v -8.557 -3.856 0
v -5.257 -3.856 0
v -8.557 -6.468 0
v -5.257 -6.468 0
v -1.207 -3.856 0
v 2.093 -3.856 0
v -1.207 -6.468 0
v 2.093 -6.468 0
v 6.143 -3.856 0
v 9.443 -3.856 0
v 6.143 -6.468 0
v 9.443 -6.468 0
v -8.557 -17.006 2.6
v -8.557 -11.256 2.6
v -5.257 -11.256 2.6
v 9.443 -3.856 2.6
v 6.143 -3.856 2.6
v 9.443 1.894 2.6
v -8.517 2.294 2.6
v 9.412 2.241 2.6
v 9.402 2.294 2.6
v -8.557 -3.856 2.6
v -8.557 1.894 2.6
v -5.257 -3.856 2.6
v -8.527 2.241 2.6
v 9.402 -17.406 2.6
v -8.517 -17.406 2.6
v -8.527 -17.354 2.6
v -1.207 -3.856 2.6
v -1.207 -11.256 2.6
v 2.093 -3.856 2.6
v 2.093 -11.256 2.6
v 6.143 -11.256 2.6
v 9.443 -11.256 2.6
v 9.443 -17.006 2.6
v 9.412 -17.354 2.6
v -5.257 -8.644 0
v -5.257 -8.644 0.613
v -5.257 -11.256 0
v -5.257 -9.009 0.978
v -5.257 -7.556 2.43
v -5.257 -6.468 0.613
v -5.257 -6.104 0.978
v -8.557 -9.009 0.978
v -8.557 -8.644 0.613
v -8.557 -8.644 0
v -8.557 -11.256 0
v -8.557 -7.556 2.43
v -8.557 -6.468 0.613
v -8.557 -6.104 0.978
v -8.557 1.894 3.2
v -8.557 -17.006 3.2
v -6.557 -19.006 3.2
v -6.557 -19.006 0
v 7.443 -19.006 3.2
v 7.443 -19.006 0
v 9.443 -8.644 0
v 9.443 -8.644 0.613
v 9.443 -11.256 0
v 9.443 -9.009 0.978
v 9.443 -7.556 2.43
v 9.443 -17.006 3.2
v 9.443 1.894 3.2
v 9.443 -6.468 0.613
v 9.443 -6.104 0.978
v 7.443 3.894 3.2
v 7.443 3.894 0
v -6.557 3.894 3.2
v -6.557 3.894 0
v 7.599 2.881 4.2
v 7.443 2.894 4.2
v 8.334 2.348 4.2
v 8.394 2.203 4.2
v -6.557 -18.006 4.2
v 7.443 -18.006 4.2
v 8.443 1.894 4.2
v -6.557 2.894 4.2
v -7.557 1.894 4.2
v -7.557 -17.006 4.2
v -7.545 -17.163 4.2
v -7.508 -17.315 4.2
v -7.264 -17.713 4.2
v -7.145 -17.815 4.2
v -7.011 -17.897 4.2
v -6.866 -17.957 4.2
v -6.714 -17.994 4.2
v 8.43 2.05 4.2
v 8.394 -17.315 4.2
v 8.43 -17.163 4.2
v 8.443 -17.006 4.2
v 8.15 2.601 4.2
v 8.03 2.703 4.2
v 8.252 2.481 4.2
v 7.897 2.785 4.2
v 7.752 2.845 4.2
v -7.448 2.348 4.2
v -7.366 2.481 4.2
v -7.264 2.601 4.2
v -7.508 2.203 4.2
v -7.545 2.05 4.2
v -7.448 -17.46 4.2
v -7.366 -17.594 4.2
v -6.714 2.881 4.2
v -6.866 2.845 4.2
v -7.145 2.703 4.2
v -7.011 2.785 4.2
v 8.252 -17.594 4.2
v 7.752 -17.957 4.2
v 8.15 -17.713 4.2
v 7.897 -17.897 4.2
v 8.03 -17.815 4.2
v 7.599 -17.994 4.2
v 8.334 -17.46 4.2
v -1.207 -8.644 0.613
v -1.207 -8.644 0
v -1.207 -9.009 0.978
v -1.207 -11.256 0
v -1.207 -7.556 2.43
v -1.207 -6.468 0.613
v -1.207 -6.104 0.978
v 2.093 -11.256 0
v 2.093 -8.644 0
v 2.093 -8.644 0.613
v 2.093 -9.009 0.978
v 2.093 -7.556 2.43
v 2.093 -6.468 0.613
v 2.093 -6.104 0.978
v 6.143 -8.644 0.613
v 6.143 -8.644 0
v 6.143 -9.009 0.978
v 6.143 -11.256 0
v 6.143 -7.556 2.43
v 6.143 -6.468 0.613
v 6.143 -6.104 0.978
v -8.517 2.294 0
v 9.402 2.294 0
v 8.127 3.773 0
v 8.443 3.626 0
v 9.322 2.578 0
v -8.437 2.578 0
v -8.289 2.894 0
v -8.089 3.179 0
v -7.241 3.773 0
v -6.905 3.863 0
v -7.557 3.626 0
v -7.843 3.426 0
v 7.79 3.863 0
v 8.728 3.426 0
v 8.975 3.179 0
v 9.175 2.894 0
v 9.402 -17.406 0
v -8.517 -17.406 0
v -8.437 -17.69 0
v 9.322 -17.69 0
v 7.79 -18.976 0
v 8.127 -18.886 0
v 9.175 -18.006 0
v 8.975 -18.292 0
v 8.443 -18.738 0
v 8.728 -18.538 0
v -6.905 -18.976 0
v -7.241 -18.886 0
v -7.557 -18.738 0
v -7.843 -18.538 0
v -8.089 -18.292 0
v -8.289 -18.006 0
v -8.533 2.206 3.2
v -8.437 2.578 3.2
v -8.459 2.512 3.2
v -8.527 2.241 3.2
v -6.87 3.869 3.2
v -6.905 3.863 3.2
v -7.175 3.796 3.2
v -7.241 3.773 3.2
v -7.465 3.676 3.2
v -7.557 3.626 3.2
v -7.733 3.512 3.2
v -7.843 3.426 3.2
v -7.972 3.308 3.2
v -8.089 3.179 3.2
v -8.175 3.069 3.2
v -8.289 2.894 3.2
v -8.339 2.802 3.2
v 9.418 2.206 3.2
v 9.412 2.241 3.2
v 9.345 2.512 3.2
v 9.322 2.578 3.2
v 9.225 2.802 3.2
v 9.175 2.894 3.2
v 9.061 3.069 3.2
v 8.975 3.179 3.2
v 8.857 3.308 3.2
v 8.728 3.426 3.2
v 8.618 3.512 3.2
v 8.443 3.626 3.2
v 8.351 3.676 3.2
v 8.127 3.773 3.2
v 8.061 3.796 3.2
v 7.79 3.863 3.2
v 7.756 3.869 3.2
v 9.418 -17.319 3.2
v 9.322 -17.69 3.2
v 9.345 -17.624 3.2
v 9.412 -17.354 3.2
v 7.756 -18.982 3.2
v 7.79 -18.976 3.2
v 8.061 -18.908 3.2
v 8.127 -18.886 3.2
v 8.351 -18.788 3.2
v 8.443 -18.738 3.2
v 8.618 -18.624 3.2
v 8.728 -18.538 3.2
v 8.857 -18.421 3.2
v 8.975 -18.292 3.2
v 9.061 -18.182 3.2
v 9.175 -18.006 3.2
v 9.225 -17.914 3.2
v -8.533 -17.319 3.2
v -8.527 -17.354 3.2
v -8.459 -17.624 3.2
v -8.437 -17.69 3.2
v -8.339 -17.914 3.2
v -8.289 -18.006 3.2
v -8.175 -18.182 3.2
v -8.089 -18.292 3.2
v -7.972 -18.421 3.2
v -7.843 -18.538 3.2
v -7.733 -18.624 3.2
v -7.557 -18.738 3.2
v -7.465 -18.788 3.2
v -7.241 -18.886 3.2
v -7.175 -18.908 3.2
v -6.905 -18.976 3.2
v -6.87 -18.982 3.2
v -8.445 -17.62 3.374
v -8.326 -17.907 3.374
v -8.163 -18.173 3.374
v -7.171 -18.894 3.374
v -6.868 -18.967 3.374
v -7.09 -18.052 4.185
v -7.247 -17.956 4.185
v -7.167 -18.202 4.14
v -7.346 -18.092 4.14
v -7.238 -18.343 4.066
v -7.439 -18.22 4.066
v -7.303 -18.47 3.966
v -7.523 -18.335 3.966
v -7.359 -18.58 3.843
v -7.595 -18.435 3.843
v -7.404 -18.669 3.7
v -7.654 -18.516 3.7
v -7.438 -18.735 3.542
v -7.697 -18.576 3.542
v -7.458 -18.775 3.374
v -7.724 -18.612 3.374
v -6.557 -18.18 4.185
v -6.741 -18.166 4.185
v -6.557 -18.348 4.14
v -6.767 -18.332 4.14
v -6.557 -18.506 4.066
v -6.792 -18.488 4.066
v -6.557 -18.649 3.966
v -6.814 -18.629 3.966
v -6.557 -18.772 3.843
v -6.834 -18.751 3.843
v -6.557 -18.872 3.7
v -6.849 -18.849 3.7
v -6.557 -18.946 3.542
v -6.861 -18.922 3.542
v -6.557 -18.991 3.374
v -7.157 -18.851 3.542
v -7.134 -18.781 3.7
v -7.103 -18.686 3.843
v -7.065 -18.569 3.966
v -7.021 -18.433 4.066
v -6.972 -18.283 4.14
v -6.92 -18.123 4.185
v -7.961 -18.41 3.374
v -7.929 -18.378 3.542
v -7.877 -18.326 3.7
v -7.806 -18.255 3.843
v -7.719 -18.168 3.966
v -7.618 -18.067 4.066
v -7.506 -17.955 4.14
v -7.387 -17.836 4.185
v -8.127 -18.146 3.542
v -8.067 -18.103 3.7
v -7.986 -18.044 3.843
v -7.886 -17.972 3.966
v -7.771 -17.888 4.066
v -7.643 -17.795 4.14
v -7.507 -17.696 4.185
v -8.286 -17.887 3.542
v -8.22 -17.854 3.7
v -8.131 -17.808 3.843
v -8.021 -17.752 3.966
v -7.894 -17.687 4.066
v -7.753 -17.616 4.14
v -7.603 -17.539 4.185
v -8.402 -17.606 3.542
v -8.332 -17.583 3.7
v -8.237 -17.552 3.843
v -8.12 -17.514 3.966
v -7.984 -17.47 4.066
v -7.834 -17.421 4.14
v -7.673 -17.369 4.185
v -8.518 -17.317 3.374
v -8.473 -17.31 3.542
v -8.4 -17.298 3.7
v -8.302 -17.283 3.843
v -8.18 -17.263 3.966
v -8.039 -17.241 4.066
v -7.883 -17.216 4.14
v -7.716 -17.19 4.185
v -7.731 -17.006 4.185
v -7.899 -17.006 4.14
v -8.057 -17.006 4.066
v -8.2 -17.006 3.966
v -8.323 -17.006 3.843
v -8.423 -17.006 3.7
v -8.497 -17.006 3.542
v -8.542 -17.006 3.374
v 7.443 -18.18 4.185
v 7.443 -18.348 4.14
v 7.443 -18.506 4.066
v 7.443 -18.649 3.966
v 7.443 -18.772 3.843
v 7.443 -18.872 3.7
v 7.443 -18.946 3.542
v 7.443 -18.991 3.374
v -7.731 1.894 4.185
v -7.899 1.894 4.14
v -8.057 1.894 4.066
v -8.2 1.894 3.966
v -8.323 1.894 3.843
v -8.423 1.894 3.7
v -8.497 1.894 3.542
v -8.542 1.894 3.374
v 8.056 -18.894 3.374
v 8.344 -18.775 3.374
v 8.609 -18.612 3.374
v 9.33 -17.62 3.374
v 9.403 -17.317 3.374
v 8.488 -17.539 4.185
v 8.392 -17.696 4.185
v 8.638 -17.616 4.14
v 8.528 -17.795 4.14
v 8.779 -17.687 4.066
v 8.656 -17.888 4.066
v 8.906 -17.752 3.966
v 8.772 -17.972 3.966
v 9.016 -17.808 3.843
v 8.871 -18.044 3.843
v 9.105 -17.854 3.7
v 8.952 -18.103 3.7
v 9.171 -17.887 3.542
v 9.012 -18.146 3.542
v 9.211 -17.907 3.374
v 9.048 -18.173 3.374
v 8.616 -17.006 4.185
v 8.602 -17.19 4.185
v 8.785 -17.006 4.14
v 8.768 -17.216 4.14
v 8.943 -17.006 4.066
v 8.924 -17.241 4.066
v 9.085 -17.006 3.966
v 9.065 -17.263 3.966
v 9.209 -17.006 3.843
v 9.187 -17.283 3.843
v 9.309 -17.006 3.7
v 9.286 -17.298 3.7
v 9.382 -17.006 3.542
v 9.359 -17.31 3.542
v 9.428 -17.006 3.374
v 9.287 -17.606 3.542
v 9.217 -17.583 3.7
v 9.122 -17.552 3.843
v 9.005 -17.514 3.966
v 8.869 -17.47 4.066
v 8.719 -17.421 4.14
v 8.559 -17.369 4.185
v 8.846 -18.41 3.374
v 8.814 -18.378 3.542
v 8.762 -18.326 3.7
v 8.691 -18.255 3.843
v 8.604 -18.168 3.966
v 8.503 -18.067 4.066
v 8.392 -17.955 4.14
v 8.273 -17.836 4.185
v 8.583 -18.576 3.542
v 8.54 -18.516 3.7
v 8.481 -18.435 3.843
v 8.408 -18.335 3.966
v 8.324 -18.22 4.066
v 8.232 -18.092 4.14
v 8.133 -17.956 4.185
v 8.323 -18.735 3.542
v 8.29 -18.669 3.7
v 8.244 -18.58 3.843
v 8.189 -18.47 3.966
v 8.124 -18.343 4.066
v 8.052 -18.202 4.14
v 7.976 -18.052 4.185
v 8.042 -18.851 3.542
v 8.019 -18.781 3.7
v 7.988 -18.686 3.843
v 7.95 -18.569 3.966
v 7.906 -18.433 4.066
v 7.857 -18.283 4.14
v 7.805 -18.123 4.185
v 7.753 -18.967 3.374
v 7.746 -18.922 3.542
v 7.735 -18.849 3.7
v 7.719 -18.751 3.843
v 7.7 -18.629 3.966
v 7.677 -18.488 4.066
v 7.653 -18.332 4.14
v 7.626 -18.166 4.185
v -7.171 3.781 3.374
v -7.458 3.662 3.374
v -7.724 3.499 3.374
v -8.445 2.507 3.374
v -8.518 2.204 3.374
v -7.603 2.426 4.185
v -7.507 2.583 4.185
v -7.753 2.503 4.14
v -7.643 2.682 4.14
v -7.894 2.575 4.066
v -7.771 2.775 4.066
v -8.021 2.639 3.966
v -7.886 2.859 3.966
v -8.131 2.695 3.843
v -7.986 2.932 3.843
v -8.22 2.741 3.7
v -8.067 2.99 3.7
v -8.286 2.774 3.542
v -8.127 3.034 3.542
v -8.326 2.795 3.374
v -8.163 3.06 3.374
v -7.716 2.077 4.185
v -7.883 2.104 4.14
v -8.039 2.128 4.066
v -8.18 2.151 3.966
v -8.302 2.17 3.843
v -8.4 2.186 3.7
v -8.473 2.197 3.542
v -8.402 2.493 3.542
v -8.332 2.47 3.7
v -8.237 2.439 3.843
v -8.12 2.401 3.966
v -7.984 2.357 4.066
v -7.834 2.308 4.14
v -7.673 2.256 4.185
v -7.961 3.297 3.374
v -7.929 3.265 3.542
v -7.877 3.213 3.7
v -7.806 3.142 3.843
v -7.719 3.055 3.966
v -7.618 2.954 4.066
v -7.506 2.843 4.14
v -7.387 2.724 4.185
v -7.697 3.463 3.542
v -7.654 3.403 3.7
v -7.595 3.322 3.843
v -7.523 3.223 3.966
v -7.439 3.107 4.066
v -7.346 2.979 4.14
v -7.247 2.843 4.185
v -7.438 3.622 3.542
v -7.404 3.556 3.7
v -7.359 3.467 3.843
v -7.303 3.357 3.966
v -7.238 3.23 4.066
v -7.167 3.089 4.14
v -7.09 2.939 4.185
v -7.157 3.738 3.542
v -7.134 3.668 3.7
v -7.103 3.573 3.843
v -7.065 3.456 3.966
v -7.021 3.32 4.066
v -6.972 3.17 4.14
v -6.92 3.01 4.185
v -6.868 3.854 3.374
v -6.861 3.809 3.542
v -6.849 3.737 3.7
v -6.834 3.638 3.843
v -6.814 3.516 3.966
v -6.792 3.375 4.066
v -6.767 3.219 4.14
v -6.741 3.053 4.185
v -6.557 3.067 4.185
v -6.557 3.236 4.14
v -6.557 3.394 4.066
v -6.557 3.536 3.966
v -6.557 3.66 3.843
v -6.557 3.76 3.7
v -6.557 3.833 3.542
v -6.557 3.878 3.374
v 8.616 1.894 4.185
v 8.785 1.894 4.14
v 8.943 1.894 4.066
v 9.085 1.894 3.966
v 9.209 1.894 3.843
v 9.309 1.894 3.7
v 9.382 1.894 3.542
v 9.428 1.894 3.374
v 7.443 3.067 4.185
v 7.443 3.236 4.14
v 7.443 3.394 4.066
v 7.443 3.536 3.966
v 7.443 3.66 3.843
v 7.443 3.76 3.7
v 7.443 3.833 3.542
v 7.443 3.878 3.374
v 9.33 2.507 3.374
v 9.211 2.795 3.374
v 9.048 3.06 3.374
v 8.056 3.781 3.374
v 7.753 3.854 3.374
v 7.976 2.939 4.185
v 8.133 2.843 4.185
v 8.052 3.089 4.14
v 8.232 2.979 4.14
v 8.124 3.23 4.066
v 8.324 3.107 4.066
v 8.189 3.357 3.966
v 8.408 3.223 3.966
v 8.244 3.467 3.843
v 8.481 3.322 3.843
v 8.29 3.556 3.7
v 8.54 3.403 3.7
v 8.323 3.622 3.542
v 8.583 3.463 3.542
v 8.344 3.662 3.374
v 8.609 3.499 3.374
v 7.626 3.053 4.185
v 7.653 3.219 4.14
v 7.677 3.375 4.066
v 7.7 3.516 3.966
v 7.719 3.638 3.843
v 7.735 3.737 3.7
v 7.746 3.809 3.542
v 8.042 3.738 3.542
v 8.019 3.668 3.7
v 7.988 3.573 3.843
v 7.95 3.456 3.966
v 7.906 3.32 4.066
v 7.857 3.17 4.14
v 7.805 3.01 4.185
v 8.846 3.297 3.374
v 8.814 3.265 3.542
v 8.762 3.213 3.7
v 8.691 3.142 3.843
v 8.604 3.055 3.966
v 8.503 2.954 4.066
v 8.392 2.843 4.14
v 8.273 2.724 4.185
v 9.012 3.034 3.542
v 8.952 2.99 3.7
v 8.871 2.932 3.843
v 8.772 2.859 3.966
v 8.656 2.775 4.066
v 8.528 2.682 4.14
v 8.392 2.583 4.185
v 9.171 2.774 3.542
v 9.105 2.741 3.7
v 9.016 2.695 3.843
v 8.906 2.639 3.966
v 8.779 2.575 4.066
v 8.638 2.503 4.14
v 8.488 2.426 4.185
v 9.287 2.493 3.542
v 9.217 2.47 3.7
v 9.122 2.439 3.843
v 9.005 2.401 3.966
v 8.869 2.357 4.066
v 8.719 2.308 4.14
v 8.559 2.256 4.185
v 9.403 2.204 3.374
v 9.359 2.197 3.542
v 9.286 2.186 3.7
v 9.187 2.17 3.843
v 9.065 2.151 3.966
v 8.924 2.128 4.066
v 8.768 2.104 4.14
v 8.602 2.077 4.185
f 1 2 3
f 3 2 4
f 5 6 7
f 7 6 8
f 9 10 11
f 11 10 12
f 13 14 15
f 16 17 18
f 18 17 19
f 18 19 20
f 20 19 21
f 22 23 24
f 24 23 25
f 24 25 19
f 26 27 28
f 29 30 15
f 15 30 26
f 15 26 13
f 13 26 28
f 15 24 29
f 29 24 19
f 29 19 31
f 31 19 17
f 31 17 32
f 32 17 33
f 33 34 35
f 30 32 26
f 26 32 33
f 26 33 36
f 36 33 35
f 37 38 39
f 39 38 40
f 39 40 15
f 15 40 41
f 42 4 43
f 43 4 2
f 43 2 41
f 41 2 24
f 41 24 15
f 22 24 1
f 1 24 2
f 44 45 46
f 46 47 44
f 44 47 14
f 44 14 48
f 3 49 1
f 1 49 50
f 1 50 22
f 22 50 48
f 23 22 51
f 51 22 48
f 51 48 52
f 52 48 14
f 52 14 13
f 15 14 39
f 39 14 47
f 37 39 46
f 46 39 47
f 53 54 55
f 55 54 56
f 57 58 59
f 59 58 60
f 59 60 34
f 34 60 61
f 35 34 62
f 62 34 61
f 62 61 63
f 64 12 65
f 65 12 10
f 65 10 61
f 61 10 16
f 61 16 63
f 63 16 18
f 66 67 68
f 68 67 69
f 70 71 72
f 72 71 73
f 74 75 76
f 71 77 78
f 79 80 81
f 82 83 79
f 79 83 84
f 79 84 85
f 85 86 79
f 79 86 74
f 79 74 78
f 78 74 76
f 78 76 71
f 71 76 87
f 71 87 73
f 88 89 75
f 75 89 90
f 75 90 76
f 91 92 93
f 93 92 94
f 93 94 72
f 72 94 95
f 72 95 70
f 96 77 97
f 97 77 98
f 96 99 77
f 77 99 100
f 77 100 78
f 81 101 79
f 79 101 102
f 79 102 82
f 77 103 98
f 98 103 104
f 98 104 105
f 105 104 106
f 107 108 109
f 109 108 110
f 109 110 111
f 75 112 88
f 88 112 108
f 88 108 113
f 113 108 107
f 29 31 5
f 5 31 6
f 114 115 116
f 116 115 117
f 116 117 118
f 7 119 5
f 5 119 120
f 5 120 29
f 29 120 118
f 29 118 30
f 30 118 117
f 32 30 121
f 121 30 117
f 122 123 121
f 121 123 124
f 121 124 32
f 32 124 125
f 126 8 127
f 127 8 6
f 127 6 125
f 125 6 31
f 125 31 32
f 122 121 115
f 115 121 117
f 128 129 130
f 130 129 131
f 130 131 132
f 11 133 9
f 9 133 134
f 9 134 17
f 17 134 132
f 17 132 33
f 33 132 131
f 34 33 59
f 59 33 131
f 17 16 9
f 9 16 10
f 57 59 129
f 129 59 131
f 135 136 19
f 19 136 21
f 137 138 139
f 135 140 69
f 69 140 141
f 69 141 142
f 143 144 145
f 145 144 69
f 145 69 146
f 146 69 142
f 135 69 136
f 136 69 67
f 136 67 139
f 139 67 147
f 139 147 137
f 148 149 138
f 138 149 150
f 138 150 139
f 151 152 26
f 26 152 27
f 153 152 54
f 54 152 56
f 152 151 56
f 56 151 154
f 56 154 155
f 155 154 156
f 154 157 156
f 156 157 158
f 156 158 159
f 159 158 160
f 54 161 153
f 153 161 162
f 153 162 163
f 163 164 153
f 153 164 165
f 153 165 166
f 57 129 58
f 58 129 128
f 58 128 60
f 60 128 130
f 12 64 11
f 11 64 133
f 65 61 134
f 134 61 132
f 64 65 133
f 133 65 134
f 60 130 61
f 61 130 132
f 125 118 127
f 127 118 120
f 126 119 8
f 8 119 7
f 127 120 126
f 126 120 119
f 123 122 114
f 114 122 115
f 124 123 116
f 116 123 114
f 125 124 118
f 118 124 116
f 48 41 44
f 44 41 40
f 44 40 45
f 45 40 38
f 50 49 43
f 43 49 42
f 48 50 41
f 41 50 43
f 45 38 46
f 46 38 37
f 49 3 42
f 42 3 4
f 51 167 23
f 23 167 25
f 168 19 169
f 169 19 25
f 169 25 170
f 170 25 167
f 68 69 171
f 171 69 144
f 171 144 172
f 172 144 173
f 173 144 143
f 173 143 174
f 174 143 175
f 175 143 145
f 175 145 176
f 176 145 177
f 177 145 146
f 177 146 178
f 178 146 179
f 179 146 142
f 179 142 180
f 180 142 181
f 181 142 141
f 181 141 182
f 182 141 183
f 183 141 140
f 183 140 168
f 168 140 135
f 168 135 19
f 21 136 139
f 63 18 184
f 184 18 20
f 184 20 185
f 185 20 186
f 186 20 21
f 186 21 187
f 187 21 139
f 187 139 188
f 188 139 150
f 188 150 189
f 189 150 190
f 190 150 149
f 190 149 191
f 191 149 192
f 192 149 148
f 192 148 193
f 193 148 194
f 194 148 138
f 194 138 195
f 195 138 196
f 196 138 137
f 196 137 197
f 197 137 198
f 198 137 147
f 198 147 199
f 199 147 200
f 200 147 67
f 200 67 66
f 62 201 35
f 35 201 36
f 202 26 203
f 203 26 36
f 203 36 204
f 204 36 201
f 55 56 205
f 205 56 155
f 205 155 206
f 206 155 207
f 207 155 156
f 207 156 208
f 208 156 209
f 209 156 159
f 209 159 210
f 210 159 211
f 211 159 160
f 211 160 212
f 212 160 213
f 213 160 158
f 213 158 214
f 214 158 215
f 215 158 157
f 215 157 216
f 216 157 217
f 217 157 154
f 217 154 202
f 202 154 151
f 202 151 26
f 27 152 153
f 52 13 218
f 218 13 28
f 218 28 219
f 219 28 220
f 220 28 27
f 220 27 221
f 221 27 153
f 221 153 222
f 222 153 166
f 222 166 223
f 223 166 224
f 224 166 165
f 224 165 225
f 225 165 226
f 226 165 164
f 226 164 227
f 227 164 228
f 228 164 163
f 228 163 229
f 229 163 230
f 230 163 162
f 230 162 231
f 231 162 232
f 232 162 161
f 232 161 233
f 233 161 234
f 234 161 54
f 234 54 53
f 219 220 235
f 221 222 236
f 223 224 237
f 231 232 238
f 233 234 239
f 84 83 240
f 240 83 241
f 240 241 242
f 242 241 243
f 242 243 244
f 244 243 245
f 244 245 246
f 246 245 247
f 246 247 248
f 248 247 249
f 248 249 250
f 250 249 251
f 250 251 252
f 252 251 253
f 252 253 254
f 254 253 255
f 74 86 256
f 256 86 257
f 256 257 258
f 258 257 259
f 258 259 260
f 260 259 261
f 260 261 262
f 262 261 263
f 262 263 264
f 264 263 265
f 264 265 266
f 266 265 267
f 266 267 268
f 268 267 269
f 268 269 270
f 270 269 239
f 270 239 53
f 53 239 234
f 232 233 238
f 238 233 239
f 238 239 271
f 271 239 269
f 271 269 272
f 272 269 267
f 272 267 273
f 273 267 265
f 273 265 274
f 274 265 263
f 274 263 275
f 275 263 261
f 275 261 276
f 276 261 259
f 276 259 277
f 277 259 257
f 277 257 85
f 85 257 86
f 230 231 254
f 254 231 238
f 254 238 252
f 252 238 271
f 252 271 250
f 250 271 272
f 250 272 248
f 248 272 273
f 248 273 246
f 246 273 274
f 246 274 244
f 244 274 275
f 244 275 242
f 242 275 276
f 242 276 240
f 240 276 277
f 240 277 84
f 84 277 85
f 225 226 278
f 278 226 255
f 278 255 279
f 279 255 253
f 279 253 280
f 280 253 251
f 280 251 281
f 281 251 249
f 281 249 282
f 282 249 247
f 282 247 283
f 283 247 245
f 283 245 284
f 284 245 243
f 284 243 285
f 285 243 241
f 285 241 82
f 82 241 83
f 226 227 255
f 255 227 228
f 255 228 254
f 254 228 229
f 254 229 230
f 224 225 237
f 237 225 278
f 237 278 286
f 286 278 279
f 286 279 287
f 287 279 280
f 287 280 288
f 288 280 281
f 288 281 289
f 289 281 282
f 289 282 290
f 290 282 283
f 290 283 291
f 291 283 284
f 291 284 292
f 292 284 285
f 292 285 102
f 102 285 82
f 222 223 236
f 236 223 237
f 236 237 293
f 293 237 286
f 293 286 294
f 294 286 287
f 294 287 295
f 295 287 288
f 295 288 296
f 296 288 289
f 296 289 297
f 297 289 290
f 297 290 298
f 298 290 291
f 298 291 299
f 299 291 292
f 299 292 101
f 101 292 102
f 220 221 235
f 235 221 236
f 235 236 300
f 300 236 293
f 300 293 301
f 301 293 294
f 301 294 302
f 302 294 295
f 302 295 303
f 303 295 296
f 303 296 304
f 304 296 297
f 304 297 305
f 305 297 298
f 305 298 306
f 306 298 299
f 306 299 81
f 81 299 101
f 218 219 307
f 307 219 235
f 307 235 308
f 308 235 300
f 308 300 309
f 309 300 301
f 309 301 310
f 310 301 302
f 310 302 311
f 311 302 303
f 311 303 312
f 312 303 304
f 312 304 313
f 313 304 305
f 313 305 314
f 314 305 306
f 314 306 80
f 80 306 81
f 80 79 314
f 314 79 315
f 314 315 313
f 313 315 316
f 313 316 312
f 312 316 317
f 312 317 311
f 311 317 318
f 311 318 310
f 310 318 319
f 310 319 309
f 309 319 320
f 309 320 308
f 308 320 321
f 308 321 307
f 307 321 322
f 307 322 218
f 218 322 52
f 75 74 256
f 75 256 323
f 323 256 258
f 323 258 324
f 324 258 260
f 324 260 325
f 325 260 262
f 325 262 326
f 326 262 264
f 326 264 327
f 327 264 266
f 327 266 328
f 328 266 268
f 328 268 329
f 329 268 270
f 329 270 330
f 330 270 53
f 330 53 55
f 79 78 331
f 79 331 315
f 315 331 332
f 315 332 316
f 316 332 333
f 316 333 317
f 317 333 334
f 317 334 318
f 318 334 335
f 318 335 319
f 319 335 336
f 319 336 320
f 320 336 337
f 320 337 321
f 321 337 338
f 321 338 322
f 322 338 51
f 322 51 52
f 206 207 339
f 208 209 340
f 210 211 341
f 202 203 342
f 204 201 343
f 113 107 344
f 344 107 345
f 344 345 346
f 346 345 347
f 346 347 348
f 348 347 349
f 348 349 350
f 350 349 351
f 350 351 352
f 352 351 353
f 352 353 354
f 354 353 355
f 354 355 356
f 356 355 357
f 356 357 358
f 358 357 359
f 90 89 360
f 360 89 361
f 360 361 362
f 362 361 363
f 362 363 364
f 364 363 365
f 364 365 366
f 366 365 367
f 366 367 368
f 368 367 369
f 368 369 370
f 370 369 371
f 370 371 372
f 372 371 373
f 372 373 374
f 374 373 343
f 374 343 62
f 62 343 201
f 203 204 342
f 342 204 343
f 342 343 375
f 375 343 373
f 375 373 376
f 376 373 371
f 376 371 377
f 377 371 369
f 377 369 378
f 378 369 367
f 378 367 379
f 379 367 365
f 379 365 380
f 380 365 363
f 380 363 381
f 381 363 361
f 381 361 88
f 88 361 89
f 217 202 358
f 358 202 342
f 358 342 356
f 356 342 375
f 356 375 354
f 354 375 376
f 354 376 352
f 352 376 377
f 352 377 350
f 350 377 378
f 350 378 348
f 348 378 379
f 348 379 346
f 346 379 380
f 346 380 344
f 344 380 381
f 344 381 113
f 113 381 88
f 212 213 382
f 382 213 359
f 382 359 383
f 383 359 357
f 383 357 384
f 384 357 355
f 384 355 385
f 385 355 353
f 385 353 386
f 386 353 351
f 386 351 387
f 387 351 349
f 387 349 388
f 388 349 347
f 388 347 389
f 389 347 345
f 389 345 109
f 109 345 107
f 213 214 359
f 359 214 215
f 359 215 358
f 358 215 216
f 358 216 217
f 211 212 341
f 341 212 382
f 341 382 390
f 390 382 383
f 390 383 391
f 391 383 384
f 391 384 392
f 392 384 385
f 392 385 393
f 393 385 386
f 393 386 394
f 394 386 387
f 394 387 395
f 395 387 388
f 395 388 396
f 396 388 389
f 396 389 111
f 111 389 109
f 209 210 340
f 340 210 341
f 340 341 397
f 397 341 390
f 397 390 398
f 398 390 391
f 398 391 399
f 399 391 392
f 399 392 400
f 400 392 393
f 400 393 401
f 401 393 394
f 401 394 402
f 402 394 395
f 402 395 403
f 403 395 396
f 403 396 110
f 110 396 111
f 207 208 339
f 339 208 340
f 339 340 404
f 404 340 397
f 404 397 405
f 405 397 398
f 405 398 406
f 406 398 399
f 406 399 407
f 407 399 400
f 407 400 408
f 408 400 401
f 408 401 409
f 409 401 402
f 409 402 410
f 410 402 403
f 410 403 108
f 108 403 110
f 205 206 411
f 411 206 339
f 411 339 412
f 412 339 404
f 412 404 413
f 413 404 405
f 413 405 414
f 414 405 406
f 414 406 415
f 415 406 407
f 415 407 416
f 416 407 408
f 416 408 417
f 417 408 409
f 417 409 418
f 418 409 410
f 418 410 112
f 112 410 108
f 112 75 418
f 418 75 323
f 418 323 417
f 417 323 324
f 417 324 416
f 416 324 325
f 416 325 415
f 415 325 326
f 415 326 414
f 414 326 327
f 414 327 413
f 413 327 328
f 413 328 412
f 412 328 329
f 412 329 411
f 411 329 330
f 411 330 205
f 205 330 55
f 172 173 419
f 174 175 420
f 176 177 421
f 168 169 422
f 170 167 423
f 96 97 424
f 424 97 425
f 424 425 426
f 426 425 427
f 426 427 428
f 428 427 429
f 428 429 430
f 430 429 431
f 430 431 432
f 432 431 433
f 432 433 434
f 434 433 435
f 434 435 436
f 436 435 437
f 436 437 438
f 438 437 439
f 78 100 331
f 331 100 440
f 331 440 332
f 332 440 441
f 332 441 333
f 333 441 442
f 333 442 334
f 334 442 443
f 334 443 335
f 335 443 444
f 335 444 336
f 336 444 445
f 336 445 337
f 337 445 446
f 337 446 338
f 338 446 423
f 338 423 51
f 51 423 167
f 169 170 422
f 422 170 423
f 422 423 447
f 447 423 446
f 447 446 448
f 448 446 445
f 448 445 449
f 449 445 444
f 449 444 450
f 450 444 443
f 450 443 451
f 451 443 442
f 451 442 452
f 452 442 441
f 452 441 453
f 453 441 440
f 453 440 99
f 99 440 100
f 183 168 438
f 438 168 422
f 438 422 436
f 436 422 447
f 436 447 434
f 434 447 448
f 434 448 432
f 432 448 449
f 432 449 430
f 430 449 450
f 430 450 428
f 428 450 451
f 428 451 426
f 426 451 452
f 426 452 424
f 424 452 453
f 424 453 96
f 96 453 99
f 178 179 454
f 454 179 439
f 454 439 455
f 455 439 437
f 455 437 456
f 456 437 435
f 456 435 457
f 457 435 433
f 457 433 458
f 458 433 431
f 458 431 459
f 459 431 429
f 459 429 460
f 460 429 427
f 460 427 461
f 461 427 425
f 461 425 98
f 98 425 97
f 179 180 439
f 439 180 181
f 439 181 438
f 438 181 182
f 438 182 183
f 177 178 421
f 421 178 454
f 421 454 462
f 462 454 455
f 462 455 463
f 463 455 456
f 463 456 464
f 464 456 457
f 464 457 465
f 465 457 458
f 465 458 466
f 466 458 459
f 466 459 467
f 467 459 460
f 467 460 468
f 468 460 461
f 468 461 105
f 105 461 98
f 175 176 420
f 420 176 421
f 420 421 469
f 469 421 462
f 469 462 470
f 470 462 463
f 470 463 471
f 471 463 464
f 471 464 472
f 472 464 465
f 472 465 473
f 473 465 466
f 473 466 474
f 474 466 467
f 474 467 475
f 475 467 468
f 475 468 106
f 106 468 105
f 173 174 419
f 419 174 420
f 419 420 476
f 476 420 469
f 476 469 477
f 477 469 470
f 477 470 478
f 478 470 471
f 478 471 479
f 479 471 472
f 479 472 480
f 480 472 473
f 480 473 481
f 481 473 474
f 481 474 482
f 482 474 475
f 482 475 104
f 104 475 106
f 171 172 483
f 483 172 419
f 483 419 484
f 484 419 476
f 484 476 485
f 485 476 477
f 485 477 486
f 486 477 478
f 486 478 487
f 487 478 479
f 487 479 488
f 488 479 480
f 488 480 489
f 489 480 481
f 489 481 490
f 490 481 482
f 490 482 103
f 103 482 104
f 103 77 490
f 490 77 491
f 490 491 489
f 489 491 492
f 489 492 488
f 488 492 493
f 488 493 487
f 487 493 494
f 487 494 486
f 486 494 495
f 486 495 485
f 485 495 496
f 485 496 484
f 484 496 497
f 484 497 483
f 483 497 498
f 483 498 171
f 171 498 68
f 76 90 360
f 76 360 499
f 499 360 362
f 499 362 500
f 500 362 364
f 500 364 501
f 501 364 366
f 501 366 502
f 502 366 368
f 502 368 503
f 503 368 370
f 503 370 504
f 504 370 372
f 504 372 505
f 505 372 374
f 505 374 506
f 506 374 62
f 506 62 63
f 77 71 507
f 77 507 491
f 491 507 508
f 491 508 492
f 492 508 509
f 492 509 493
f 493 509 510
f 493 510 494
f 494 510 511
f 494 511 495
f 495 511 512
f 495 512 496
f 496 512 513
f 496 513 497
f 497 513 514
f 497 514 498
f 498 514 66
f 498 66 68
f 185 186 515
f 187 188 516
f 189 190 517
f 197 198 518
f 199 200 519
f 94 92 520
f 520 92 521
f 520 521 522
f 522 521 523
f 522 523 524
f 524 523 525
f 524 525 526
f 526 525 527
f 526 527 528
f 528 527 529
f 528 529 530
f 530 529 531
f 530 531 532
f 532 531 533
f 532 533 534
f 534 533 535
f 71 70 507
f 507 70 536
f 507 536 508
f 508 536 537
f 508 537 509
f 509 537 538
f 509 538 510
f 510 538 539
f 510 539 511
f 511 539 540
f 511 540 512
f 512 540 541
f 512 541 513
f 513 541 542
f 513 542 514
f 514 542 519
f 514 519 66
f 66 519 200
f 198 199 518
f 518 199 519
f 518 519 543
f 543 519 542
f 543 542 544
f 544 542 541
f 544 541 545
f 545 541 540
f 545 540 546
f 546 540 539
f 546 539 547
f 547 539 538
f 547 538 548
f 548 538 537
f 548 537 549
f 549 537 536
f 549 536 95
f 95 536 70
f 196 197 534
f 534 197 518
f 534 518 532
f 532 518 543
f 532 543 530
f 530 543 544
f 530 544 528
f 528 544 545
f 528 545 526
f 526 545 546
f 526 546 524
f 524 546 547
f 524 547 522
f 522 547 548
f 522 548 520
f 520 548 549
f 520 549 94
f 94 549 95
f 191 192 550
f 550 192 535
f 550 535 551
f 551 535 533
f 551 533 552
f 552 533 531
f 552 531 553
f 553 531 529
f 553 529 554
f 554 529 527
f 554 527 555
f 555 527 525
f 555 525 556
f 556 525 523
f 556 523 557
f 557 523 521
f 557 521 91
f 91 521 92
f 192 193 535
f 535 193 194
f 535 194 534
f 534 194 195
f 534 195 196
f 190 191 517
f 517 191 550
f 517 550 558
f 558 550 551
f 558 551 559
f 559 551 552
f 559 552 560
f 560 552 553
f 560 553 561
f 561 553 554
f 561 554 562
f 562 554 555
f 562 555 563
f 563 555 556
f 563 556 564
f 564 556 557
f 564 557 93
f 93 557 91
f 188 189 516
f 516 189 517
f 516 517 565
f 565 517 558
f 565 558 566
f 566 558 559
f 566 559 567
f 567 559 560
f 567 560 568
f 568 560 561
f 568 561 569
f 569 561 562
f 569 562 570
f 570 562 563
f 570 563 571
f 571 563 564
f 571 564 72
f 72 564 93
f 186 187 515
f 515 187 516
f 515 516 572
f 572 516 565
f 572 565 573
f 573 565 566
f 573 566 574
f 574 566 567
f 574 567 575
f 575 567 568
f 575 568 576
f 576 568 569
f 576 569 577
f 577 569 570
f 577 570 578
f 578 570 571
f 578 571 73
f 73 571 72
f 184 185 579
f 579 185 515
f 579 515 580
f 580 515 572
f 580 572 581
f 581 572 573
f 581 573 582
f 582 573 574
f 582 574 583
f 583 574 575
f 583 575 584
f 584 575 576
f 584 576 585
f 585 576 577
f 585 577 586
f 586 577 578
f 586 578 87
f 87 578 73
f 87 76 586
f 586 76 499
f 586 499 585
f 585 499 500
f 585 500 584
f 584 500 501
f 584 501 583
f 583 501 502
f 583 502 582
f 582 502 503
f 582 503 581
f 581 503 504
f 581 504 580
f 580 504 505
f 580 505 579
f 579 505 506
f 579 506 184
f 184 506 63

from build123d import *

# Parameters (mm, degrees)
SKETCH1_W               = 3.3
SKETCH1_H               = 7.4
BOSS_EXTRUDE1_DEPTH     = 2.6
BOSS_EXTRUDE1_2_DEPTH   = 2.6
BOSS_EXTRUDE1_3_DEPTH   = 2.6
SKETCH1_W_2             = 18
SKETCH1_H_2             = 1.6
BOSS_EXTRUDE1_4_DEPTH   = 2.6
BOSS_EXTRUDE1_5_DEPTH   = 2.6
SKETCH3_W               = 18
SKETCH3_H               = 22.9
BOSS_EXTRUDE2_DEPTH     = 1.6
CUT_EXTRUDE1_DEPTH      = 27.511924597
CUT_EXTRUDE1_DEPTH_BACK = 27.511924597
FILLET1_R               = 2
FILLET2_R               = 1


with BuildPart() as part:
    # Sketch1 → Boss-Extrude1 (new body)
    with BuildSketch(Plane.XY):
        with Locations((-6.907290918, -7.556371191)):
            Rectangle(SKETCH1_W, SKETCH1_H)
    extrude(amount=BOSS_EXTRUDE1_DEPTH)



with BuildPart() as body_2:
    # Sketch1 → Boss-Extrude1 2 (new body)
    with BuildSketch(Plane.XY):
        with Locations((0.442709082, -7.556371191)):
            Rectangle(SKETCH1_W, SKETCH1_H)
    extrude(amount=BOSS_EXTRUDE1_2_DEPTH)


with BuildPart() as body_3:
    # Sketch1 → Boss-Extrude1 3 (new body)
    with BuildSketch(Plane.XY):
        with Locations((7.792709082, -7.556371191)):
            Rectangle(SKETCH1_W, SKETCH1_H)
    extrude(amount=BOSS_EXTRUDE1_3_DEPTH)


with BuildPart() as body_4:
    # Sketch1 → Boss-Extrude1 4 (new body)
    with BuildSketch(Plane.XY):
        with Locations((0.442709082, 3.093628809)):
            Rectangle(SKETCH1_W_2, SKETCH1_H_2)
    extrude(amount=BOSS_EXTRUDE1_4_DEPTH)


with BuildPart() as body_5:
    # Sketch1 → Boss-Extrude1 5 (new body)
    with BuildSketch(Plane.XY):
        with Locations((0.442709082, -18.206371191)):
            Rectangle(SKETCH1_W_2, SKETCH1_H_2)
    extrude(amount=BOSS_EXTRUDE1_5_DEPTH)


with BuildPart() as part_1:
    add(part.part)

    add(body_2.part)  # Boss-Extrude2 merges body 2

    add(body_3.part)  # Boss-Extrude2 merges body 3

    add(body_4.part)  # Boss-Extrude2 merges body 4

    add(body_5.part)  # Boss-Extrude2 merges body 5
    # Sketch3 → Boss-Extrude2 (add)
    with BuildSketch(Plane.XY.offset(2.6)):
        with Locations((0.442709082, -7.556371191)):
            Rectangle(SKETCH3_W, SKETCH3_H)
    extrude(amount=BOSS_EXTRUDE2_DEPTH)

    # Sketch4 → Cut-Extrude1 (cut, two sides: drawn at the far end of the back side and taken through both)
    with BuildSketch(Plane.ZY.offset(8.557290918).offset(-CUT_EXTRUDE1_DEPTH_BACK)):
        Polygon((1.342435563, -8.644254243), (0.613371363, -8.644254243), (0.977903463, -9.008786343), align=None)
        Polygon((2.430318615, -7.556371191), (1.342435563, -6.468488139), (1.342435563, -8.644254243), align=None)
        Polygon((0.977903463, -6.103956039), (0.613371363, -6.468488139), (1.342435563, -6.468488139), align=None)
        Polygon((0.613371363, -6.468488139), (0, -7.081859502), (0, -8.03088288), (0.613371363, -8.644254243), (1.342435563, -8.644254243), (1.342435563, -6.468488139), align=None)
        Polygon((0, -6.468488139), (0, -7.081859502), (0.613371363, -6.468488139), align=None)
        Polygon((0.613371363, -8.644254243), (0, -8.03088288), (0, -8.644254243), align=None)
    extrude(amount=CUT_EXTRUDE1_DEPTH + CUT_EXTRUDE1_DEPTH_BACK, mode=Mode.SUBTRACT)

    # Fillet1
    fillet1_edges = [part_1.edges().sort_by_distance(p)[0] for p in [
        (-8.557290918, 3.893628809, 2.1),
        (9.442709082, 3.893628809, 2.1),
        (9.442709082, -19.006371191, 2.1),
        (-8.557290918, -19.006371191, 2.1),
    ]]
    fillet(fillet1_edges, radius=FILLET1_R)

    # Fillet2
    fillet2_edges = [part_1.edges().sort_by_distance(p)[0] for p in [
        (-8.557290918, -7.556371191, 4.2),
        (0.442709082, 3.893628809, 4.2),
        (0.442709082, -19.006371191, 4.2),
        (9.442709082, -7.556371191, 4.2),
        (-7.97150448, -18.420584754, 4.2),
        (8.856922645, -18.420584754, 4.2),
        (8.856922645, 3.307842371, 4.2),
        (-7.97150448, 3.307842371, 4.2),
    ]]
    fillet(fillet2_edges, radius=FILLET2_R)


solid = part_1.part
